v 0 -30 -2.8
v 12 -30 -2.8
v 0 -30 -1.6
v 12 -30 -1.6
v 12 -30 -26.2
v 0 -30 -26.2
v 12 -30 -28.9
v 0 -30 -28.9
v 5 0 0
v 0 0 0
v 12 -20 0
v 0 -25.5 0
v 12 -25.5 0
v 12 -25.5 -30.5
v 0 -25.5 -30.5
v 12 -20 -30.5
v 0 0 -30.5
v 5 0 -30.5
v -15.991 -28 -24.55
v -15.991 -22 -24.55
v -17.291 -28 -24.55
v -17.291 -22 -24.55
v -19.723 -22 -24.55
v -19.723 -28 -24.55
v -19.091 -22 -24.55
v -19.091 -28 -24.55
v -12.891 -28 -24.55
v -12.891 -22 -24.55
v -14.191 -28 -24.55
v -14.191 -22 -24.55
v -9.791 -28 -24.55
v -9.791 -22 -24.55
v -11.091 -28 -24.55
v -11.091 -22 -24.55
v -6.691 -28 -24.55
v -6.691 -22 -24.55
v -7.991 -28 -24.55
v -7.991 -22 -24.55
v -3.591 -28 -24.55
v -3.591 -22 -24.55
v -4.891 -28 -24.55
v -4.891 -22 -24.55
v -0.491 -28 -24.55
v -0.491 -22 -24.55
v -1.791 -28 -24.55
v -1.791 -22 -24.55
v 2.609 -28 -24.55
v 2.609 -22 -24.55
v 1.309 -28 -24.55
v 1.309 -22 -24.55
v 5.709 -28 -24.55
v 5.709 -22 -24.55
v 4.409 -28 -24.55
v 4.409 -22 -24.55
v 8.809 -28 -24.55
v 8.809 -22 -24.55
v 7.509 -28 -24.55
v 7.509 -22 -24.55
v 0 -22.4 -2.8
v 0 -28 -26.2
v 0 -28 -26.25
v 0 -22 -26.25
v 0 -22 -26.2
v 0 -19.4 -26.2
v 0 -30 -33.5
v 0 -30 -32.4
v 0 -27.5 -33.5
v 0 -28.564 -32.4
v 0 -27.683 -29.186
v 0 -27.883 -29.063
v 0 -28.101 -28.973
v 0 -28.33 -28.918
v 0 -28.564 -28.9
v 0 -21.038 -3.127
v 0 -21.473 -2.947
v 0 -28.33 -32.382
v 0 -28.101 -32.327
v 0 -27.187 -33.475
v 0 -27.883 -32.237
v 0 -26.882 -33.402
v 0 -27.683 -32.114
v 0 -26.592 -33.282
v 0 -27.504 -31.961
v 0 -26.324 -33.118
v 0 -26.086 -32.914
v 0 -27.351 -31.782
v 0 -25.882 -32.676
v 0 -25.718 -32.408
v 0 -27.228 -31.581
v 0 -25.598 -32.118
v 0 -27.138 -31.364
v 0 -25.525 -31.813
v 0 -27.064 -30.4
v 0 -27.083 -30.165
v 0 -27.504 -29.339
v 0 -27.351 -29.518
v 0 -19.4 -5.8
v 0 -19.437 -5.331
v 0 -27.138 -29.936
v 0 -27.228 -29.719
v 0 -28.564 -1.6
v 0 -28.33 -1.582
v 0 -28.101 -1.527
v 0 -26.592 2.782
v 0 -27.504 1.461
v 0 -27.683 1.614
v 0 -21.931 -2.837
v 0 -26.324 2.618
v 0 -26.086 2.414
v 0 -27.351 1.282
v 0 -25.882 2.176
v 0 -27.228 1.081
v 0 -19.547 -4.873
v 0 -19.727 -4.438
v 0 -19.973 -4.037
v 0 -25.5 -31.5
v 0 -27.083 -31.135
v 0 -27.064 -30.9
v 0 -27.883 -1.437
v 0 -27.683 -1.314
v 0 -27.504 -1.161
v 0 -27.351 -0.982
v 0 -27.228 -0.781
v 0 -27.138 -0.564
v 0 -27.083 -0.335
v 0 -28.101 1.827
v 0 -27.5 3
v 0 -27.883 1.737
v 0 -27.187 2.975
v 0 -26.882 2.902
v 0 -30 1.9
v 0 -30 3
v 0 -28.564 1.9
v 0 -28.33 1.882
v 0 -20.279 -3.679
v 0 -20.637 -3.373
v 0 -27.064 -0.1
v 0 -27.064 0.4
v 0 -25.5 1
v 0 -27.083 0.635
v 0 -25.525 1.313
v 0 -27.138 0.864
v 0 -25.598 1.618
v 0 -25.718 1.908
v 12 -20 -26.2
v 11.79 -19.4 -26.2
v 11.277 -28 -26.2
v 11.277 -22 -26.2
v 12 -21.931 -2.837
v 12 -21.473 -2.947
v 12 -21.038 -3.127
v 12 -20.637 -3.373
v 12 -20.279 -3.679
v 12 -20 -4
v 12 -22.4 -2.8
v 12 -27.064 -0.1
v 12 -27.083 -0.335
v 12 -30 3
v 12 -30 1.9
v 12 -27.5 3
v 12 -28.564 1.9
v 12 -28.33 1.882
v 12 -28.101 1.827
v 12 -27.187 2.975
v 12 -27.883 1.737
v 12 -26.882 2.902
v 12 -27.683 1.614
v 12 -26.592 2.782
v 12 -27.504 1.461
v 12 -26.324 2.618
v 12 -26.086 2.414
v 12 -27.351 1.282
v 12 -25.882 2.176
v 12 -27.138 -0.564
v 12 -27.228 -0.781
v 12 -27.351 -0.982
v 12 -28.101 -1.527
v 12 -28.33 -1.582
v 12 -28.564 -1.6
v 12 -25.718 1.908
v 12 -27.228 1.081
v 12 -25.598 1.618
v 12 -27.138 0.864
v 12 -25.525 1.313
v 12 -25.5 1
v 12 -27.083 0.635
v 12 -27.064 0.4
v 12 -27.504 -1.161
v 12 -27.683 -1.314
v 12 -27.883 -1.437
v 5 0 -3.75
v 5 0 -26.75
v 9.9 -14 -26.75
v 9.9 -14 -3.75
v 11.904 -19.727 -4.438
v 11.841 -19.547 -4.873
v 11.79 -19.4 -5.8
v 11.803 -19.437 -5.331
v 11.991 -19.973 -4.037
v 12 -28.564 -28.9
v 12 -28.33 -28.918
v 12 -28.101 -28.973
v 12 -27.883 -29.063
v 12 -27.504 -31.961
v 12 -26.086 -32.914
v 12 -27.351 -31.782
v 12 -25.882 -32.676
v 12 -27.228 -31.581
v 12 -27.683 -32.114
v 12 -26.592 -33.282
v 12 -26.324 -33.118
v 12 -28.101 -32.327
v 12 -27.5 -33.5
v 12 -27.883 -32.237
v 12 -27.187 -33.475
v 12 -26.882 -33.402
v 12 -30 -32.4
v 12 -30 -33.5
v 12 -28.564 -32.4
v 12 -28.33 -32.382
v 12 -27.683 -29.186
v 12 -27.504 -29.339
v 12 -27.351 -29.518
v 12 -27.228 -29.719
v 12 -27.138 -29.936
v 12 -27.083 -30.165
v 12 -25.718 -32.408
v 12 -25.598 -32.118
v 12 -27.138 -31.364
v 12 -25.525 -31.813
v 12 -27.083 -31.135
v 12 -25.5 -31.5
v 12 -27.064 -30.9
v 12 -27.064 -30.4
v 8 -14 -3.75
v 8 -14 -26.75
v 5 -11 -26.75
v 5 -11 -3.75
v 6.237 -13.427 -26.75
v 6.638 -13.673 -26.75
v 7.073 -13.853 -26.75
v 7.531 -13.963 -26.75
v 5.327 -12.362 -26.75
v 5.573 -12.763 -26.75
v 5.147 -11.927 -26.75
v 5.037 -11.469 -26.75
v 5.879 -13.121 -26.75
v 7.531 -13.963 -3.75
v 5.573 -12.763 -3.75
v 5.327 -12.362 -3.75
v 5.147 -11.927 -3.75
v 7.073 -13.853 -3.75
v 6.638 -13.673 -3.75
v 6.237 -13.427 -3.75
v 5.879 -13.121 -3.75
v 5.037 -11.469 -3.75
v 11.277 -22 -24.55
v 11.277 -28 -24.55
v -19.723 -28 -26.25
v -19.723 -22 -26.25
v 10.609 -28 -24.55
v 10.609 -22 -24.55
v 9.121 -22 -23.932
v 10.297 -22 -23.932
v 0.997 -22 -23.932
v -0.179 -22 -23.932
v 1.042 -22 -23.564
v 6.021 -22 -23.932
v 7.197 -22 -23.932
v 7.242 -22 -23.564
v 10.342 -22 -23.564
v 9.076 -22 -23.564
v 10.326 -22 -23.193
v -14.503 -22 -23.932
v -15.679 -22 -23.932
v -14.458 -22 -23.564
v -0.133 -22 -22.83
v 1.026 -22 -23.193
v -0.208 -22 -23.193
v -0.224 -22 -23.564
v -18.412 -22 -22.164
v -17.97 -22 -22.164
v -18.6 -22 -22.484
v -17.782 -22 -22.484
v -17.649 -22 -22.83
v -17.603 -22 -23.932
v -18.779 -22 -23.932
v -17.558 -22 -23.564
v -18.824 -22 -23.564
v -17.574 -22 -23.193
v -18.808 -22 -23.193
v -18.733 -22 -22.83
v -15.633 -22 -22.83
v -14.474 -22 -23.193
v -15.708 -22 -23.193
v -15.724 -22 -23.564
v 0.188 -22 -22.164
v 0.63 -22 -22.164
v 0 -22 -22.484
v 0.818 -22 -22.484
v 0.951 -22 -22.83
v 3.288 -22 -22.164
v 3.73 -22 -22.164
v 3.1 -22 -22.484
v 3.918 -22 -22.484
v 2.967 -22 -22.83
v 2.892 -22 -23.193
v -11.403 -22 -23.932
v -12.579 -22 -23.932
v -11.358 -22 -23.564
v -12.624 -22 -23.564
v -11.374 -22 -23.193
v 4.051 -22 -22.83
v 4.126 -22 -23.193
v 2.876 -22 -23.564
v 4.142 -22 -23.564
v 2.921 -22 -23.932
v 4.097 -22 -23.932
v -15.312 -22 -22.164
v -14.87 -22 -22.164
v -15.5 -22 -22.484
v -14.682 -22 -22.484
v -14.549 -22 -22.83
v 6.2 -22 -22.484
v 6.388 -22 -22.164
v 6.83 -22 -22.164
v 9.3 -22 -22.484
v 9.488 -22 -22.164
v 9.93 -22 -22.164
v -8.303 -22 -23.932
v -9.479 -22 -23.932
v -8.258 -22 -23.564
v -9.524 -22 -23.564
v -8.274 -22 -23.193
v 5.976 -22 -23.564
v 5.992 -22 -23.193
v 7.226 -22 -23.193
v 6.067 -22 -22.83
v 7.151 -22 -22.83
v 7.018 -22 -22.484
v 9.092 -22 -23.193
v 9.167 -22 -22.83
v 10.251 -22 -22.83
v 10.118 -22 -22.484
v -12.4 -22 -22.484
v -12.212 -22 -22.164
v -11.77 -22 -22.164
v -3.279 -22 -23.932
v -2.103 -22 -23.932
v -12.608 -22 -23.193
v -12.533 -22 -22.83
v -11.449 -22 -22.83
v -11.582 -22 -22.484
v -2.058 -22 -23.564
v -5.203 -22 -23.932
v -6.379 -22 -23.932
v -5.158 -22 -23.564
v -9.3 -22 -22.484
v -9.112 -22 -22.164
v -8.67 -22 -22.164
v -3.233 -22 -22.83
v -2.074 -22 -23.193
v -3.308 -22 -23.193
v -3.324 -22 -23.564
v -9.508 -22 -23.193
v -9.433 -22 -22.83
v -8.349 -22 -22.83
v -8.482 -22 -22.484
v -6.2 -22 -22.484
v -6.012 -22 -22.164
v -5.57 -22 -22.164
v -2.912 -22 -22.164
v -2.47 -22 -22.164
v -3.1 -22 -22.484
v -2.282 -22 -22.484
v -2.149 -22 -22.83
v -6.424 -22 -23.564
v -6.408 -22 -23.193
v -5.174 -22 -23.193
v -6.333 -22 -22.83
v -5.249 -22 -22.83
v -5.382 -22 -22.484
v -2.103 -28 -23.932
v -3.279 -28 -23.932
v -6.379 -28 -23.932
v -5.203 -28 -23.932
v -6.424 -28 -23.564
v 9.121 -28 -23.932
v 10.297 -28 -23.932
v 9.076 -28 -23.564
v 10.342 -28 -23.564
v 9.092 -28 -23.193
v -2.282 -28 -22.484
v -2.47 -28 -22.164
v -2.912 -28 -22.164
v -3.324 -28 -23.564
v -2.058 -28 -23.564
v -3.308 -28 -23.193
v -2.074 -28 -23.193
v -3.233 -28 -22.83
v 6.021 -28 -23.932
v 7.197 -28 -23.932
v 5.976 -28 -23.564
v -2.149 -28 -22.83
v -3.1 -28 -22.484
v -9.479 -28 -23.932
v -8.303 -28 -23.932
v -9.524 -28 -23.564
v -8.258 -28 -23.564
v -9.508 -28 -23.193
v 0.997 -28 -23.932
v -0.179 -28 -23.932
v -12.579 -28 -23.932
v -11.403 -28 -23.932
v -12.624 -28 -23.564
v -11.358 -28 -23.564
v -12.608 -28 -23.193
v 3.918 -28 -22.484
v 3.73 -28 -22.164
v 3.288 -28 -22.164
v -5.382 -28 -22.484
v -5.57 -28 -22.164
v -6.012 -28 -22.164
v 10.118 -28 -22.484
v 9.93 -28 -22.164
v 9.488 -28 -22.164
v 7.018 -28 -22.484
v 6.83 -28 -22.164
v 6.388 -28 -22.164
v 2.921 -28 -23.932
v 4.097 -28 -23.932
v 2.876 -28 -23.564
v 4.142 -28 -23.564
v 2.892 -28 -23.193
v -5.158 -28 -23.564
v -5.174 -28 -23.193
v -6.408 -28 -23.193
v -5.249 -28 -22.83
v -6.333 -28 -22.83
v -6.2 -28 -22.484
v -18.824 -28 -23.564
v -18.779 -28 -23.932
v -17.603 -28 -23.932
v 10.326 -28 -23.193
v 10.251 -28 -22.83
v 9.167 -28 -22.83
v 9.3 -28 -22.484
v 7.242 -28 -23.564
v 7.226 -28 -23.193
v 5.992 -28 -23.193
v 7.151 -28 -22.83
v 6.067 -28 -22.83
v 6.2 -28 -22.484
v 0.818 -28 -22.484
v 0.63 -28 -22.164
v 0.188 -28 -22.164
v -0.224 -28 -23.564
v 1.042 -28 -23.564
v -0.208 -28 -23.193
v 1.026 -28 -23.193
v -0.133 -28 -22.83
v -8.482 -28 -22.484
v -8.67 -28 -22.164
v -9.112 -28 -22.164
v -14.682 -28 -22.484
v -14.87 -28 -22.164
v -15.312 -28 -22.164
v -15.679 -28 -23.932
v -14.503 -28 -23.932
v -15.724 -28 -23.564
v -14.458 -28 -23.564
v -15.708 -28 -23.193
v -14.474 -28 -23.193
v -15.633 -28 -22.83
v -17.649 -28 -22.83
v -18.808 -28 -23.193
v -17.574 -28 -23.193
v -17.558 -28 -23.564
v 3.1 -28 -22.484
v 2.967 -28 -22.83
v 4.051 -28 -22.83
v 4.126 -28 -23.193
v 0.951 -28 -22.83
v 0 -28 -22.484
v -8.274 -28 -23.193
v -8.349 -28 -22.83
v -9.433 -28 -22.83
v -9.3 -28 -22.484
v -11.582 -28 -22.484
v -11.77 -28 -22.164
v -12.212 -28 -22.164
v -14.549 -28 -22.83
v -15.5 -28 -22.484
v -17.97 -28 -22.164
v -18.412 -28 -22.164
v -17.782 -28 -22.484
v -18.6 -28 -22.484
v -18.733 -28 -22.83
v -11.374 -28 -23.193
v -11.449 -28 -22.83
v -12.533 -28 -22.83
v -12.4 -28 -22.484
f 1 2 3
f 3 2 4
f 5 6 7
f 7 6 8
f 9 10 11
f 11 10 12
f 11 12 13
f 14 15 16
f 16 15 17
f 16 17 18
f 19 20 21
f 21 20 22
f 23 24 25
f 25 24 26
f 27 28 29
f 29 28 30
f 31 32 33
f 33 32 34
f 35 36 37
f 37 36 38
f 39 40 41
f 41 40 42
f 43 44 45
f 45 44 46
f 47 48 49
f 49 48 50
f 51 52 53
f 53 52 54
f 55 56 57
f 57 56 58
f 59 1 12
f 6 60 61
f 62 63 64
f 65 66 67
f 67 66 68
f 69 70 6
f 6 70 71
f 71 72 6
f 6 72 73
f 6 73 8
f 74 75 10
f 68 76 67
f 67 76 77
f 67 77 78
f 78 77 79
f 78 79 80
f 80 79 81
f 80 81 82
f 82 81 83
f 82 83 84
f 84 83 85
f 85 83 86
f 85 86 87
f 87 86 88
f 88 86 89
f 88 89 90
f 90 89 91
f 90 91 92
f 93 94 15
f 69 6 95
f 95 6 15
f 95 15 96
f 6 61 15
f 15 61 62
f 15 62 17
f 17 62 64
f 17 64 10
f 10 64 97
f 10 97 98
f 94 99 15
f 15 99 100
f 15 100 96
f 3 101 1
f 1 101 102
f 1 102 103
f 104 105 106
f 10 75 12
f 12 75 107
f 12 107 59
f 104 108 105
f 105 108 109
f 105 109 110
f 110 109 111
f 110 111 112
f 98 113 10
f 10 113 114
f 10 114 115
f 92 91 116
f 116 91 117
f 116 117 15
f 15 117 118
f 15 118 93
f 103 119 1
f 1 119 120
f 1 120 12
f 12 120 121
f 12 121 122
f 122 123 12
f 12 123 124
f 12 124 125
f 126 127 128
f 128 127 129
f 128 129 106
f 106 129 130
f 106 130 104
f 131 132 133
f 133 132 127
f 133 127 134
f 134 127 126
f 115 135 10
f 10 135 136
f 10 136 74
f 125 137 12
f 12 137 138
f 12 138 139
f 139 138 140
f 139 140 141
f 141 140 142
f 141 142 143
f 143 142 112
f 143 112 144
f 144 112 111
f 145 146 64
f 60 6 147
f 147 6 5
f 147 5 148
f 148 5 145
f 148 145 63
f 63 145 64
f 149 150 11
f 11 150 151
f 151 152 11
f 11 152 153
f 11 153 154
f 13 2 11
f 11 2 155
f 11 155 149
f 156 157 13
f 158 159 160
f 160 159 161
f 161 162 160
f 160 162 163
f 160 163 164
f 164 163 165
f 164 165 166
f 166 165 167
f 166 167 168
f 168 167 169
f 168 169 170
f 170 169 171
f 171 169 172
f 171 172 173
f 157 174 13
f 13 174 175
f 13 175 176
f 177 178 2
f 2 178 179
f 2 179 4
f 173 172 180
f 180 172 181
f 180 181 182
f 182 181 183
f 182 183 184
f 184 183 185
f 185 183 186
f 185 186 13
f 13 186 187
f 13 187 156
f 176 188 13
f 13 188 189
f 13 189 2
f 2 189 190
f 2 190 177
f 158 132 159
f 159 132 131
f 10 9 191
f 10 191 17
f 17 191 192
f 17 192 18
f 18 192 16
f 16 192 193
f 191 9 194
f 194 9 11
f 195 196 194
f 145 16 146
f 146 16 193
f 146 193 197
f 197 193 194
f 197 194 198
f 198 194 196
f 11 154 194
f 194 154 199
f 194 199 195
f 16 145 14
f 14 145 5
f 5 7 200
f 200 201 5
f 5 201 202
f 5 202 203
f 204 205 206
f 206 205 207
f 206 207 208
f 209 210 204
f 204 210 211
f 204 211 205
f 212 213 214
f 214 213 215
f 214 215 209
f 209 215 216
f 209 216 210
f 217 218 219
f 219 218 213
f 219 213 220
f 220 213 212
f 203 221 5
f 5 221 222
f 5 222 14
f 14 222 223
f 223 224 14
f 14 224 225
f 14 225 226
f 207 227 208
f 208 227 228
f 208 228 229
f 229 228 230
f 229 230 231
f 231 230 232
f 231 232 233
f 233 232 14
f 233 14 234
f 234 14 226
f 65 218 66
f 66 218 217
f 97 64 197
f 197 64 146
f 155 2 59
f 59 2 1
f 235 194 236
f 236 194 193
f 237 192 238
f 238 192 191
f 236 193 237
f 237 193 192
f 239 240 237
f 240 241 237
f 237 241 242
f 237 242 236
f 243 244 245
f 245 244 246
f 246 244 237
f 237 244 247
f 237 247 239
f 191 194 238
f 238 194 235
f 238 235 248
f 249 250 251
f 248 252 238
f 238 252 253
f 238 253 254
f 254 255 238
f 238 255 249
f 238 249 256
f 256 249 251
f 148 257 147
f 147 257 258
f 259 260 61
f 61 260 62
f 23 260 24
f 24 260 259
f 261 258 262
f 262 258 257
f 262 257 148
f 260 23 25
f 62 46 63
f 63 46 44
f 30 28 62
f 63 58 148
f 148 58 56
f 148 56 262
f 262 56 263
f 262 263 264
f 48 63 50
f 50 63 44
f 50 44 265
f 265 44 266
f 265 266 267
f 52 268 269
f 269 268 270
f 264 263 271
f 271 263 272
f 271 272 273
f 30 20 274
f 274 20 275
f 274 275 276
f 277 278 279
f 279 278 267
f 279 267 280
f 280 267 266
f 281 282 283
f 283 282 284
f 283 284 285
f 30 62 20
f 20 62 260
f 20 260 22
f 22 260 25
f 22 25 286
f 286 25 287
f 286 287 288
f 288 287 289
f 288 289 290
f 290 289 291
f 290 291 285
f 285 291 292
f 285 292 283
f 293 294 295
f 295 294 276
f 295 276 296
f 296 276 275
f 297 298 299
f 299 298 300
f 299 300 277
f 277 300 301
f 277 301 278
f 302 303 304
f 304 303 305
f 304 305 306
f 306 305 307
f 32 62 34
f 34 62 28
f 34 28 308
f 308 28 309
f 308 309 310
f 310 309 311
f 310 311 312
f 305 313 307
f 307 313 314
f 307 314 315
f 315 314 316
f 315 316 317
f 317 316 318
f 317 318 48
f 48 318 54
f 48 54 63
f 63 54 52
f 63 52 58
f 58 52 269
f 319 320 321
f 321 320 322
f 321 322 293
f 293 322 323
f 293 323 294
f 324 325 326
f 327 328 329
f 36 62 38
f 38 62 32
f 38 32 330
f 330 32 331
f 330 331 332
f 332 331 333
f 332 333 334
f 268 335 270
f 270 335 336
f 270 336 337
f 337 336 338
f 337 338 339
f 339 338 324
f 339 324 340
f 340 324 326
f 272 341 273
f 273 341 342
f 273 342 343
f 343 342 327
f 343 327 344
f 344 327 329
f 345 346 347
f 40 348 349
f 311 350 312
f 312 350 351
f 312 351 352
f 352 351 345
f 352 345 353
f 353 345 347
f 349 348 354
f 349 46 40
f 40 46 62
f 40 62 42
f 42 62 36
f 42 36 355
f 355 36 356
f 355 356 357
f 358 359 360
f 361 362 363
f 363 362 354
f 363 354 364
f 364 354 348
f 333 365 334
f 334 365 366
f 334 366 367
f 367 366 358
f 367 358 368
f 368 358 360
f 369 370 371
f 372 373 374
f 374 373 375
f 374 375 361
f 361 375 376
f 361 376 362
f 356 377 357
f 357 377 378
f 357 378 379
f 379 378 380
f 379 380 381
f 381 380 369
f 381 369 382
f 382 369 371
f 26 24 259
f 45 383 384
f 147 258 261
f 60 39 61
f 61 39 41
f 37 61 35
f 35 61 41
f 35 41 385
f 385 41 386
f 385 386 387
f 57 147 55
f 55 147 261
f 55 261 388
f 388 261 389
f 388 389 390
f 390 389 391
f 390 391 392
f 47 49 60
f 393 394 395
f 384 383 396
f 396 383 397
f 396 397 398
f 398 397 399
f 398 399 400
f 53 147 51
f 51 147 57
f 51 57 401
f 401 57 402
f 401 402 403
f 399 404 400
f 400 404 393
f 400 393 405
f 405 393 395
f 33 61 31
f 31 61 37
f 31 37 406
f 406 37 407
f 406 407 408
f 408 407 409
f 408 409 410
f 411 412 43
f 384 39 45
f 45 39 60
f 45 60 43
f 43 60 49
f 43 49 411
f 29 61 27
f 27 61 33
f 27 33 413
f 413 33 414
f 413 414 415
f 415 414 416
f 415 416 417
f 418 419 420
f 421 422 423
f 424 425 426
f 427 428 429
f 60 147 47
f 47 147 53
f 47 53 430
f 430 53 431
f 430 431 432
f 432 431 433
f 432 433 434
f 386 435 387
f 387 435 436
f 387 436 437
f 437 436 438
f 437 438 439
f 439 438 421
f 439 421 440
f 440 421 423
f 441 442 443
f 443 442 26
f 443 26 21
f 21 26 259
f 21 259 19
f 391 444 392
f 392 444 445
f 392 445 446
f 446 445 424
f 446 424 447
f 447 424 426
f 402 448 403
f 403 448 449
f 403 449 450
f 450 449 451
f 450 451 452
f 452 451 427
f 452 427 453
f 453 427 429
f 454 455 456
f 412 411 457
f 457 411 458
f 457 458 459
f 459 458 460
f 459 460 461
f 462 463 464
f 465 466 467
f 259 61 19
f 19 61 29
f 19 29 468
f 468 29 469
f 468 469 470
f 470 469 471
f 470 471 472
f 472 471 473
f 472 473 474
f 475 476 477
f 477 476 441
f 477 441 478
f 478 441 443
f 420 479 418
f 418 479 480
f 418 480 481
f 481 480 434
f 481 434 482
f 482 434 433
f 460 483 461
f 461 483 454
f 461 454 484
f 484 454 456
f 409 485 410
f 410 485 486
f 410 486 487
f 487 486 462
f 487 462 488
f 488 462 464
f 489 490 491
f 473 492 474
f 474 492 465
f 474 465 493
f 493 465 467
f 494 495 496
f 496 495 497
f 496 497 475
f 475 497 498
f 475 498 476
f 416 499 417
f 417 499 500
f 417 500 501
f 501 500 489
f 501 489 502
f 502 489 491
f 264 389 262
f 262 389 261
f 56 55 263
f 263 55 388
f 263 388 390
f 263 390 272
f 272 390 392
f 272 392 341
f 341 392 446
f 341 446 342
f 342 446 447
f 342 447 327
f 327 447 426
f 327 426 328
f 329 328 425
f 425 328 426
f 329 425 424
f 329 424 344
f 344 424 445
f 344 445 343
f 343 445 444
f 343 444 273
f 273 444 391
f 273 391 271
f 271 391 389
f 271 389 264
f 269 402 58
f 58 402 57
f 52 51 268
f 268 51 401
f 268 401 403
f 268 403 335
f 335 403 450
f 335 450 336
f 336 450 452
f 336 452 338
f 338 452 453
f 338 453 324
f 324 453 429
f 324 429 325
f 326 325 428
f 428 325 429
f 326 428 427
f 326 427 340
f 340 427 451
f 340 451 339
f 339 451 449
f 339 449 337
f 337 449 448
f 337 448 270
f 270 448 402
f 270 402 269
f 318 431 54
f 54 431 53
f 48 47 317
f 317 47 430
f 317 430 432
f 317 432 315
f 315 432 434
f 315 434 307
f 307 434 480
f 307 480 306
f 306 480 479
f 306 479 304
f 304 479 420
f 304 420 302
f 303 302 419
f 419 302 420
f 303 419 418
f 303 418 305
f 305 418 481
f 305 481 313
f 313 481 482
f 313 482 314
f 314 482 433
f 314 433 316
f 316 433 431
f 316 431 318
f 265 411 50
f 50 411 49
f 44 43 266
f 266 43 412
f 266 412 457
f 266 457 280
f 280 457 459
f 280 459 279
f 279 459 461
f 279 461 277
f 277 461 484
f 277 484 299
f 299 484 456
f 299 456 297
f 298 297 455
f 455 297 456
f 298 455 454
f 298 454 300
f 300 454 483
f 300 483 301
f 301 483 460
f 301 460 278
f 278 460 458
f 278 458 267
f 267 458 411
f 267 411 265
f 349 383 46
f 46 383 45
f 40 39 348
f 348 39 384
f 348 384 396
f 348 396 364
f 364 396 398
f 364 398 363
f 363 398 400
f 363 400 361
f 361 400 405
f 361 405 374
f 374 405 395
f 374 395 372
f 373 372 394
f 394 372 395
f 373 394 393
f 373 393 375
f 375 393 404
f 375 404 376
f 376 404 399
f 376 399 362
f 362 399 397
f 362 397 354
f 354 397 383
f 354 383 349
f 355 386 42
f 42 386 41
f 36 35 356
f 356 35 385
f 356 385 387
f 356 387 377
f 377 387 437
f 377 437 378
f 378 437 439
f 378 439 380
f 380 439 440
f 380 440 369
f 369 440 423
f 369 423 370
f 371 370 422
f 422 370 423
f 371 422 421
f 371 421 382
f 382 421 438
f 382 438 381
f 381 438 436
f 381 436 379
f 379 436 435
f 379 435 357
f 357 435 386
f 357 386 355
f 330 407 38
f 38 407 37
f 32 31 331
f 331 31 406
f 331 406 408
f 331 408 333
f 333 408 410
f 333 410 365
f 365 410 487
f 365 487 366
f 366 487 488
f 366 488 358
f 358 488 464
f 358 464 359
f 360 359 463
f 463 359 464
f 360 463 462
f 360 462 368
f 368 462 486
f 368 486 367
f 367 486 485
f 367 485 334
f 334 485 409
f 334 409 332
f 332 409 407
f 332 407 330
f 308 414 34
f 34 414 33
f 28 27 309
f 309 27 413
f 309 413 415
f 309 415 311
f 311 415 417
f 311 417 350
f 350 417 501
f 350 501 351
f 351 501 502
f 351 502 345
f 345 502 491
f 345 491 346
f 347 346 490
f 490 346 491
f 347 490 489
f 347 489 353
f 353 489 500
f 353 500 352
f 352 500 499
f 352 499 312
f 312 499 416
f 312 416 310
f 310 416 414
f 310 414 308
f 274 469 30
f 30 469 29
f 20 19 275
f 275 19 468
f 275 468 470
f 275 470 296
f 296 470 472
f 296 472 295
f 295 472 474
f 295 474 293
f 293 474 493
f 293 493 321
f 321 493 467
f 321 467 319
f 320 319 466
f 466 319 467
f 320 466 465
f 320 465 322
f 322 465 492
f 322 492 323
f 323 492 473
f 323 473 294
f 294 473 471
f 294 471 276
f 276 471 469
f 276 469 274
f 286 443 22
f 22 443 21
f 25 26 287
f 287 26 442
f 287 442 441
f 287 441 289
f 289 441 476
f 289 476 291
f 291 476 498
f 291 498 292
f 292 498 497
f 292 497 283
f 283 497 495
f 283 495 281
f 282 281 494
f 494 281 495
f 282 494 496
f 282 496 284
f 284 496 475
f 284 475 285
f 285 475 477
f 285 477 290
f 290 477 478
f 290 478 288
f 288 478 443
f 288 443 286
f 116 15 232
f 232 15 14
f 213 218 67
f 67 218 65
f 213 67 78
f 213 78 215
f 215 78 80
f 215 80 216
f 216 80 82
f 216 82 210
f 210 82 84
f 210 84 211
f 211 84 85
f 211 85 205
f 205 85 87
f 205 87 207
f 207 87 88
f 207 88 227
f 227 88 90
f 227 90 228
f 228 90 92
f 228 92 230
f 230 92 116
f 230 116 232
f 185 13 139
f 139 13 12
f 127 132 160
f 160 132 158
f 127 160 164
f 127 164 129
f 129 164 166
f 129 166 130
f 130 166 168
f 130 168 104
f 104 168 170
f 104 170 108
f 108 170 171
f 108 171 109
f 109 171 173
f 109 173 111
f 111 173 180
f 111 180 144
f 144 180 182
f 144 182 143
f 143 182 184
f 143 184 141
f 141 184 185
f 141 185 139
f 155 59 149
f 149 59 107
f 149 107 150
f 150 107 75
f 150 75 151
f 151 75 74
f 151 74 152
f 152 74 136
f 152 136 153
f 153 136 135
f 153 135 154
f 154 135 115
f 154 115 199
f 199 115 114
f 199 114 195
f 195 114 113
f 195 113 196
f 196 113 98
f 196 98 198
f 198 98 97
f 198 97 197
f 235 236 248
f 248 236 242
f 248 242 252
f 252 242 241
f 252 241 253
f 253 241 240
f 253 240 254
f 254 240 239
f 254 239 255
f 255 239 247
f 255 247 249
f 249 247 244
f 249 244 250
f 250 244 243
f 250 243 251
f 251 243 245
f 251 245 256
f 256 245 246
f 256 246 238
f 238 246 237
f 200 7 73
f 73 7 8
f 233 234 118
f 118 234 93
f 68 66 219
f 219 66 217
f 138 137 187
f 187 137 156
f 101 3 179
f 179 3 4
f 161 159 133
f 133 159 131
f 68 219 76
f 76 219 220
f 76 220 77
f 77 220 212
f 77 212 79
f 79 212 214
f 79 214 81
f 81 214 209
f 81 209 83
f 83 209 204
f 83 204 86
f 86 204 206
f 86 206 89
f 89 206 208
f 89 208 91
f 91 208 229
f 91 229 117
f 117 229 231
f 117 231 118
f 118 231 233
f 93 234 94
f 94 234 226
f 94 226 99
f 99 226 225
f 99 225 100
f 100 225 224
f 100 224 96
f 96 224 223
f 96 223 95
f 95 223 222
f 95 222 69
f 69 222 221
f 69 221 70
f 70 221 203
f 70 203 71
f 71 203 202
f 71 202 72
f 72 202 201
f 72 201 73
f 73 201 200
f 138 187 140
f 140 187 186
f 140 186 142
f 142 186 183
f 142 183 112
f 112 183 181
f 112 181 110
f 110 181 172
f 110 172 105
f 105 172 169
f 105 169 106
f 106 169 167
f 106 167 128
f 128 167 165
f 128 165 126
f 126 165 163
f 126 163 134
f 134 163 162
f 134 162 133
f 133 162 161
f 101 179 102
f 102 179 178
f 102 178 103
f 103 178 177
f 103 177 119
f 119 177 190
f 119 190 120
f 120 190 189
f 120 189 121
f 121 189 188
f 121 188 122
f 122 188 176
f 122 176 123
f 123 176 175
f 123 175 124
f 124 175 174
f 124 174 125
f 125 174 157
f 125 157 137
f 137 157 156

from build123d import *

# Parameters (mm, degrees)
BOSS_EXTRUDE1_DEPTH = 30.5
SKETCH4_W           = 23.4
SKETCH4_H           = 13
CUT_EXTRUDE2_DEPTH  = 25
CUT_EXTRUDE4_DEPTH  = 11.5
SKETCH7_W           = 31
SKETCH7_H           = 1.7
BOSS_EXTRUDE3_DEPTH = 6
BOSS_EXTRUDE4_DEPTH = 6
LPATTERN1_COUNT     = 10
LPATTERN1_PITCH     = 3.1
SKETCH11_W          = 12
SKETCH11_H          = 4.5
BOSS_EXTRUDE5_DEPTH = 3
FILLET1_R           = 2
FILLET2_R           = 2
FILLET5_R           = 3
SKETCH12_W          = 3.5
SKETCH12_H          = 3.5
CUT_EXTRUDE5_DEPTH  = 12
FILLET6_R           = 1.5


with BuildPart() as part:
    # Sketch1 → Boss-Extrude1 (new body)
    with BuildSketch(Plane.XY):
        Polygon((0, 0), (0, -30), (12, -30), (12, -20), (5, 0), align=None)
    extrude(amount=-BOSS_EXTRUDE1_DEPTH)

    # Sketch4 → Cut-Extrude2 (cut)
    with BuildSketch(Plane.ZY):
        with Locations((-14.5, -25.899949695)):
            Rectangle(SKETCH4_W, SKETCH4_H)
    extrude(amount=-CUT_EXTRUDE2_DEPTH, mode=Mode.SUBTRACT)

    # Sketch6 → Cut-Extrude4 (cut, symmetric)
    with BuildSketch(Plane.XY.offset(-15.25)):
        Polygon((5, 0), (5, -14), (9.9, -14), align=None)
    extrude(amount=CUT_EXTRUDE4_DEPTH, both=True, mode=Mode.SUBTRACT)

    # Sketch7 → Boss-Extrude3 (add)
    with BuildSketch(Plane(origin=(0, -28, 0), x_dir=(1, 0, 0), z_dir=(0, 1, 0))):
        with Locations((-4.2231607, 25.4)):
            Rectangle(SKETCH7_W, SKETCH7_H)
    extrude(amount=BOSS_EXTRUDE3_DEPTH)

    # Sketch10 → Boss-Extrude4 (add)
    with BuildSketch(Plane(origin=(0, -28, 0), x_dir=(1, 0, 0), z_dir=(0, 1, 0))):
        with BuildLine():
            Line((9.930277247, 22.163714857), (9.488014181, 22.163714857))
            ThreePointArc((9.488014181, 22.163714857), (9.122148109, 23.010204326), (9.120849309, 23.932376064))
            ThreePointArc((9.120849309, 23.932376064), (8.970587763, 24.244009331), (8.809145714, 24.55))
            Line((8.809145714, 24.55), (10.609145714, 24.55))
            ThreePointArc((10.609145714, 24.55), (10.447703664, 24.244009331), (10.297442118, 23.932376064))
            ThreePointArc((10.297442118, 23.932376064), (10.296143319, 23.010204326), (9.930277247, 22.163714857))
        make_face()
    boss_extrude4 = extrude(amount=BOSS_EXTRUDE4_DEPTH)

    # LPattern1: Boss-Extrude4 ×10
    with Locations(*[(-i * LPATTERN1_PITCH, 0, 0) for i in range(1, LPATTERN1_COUNT)]):
        add(boss_extrude4)

    # Sketch11 → Boss-Extrude5 (add)
    with BuildSketch(Plane(origin=(0, 0, -30.5), x_dir=(-1, 0, 0), z_dir=(0, 0, -1))):
        with Locations((-6, -27.75)):
            Rectangle(SKETCH11_W, SKETCH11_H)
    boss_extrude5 = extrude(amount=BOSS_EXTRUDE5_DEPTH)

    # Fillet1
    fillet1_edges = [part.edges().sort_by_distance(p)[0] for p in [
        (6, -25.5, -33.5),
    ]]
    fillet(fillet1_edges, radius=FILLET1_R)

    # Mirror1: Boss-Extrude5 across plane
    add(boss_extrude5.mirror(Plane.XY.offset(-15.25)))

    # Fillet2
    fillet2_edges = [part.edges().sort_by_distance(p)[0] for p in [
        (6, -25.5, 3),
    ]]
    fillet(fillet2_edges, radius=FILLET2_R)

    # Fillet5
    fillet5_edges = [part.edges().sort_by_distance(p)[0] for p in [
        (5, -14, -15.25),
        (5.894991197, -19.399949695, -2.8),
    ]]
    fillet(fillet5_edges, radius=FILLET5_R)

    # Sketch12 → Cut-Extrude5 (cut)
    with BuildSketch(Plane.ZY):
        with Locations((-30.65, -28.814354386)):
            Rectangle(SKETCH12_W, SKETCH12_H)
        with Locations((0.15, -28.814354386)):
            Rectangle(SKETCH12_W, SKETCH12_H)
    extrude(amount=-CUT_EXTRUDE5_DEPTH, mode=Mode.SUBTRACT)

    # Fillet6
    fillet6_edges = [part.edges().sort_by_distance(p)[0] for p in [
        (6, -27.064354386, -28.9),
        (6, -27.064354386, -32.4),
        (6, -27.064354386, -1.6),
        (6, -27.064354386, 1.9),
    ]]
    fillet(fillet6_edges, radius=FILLET6_R)


solid = part.part
